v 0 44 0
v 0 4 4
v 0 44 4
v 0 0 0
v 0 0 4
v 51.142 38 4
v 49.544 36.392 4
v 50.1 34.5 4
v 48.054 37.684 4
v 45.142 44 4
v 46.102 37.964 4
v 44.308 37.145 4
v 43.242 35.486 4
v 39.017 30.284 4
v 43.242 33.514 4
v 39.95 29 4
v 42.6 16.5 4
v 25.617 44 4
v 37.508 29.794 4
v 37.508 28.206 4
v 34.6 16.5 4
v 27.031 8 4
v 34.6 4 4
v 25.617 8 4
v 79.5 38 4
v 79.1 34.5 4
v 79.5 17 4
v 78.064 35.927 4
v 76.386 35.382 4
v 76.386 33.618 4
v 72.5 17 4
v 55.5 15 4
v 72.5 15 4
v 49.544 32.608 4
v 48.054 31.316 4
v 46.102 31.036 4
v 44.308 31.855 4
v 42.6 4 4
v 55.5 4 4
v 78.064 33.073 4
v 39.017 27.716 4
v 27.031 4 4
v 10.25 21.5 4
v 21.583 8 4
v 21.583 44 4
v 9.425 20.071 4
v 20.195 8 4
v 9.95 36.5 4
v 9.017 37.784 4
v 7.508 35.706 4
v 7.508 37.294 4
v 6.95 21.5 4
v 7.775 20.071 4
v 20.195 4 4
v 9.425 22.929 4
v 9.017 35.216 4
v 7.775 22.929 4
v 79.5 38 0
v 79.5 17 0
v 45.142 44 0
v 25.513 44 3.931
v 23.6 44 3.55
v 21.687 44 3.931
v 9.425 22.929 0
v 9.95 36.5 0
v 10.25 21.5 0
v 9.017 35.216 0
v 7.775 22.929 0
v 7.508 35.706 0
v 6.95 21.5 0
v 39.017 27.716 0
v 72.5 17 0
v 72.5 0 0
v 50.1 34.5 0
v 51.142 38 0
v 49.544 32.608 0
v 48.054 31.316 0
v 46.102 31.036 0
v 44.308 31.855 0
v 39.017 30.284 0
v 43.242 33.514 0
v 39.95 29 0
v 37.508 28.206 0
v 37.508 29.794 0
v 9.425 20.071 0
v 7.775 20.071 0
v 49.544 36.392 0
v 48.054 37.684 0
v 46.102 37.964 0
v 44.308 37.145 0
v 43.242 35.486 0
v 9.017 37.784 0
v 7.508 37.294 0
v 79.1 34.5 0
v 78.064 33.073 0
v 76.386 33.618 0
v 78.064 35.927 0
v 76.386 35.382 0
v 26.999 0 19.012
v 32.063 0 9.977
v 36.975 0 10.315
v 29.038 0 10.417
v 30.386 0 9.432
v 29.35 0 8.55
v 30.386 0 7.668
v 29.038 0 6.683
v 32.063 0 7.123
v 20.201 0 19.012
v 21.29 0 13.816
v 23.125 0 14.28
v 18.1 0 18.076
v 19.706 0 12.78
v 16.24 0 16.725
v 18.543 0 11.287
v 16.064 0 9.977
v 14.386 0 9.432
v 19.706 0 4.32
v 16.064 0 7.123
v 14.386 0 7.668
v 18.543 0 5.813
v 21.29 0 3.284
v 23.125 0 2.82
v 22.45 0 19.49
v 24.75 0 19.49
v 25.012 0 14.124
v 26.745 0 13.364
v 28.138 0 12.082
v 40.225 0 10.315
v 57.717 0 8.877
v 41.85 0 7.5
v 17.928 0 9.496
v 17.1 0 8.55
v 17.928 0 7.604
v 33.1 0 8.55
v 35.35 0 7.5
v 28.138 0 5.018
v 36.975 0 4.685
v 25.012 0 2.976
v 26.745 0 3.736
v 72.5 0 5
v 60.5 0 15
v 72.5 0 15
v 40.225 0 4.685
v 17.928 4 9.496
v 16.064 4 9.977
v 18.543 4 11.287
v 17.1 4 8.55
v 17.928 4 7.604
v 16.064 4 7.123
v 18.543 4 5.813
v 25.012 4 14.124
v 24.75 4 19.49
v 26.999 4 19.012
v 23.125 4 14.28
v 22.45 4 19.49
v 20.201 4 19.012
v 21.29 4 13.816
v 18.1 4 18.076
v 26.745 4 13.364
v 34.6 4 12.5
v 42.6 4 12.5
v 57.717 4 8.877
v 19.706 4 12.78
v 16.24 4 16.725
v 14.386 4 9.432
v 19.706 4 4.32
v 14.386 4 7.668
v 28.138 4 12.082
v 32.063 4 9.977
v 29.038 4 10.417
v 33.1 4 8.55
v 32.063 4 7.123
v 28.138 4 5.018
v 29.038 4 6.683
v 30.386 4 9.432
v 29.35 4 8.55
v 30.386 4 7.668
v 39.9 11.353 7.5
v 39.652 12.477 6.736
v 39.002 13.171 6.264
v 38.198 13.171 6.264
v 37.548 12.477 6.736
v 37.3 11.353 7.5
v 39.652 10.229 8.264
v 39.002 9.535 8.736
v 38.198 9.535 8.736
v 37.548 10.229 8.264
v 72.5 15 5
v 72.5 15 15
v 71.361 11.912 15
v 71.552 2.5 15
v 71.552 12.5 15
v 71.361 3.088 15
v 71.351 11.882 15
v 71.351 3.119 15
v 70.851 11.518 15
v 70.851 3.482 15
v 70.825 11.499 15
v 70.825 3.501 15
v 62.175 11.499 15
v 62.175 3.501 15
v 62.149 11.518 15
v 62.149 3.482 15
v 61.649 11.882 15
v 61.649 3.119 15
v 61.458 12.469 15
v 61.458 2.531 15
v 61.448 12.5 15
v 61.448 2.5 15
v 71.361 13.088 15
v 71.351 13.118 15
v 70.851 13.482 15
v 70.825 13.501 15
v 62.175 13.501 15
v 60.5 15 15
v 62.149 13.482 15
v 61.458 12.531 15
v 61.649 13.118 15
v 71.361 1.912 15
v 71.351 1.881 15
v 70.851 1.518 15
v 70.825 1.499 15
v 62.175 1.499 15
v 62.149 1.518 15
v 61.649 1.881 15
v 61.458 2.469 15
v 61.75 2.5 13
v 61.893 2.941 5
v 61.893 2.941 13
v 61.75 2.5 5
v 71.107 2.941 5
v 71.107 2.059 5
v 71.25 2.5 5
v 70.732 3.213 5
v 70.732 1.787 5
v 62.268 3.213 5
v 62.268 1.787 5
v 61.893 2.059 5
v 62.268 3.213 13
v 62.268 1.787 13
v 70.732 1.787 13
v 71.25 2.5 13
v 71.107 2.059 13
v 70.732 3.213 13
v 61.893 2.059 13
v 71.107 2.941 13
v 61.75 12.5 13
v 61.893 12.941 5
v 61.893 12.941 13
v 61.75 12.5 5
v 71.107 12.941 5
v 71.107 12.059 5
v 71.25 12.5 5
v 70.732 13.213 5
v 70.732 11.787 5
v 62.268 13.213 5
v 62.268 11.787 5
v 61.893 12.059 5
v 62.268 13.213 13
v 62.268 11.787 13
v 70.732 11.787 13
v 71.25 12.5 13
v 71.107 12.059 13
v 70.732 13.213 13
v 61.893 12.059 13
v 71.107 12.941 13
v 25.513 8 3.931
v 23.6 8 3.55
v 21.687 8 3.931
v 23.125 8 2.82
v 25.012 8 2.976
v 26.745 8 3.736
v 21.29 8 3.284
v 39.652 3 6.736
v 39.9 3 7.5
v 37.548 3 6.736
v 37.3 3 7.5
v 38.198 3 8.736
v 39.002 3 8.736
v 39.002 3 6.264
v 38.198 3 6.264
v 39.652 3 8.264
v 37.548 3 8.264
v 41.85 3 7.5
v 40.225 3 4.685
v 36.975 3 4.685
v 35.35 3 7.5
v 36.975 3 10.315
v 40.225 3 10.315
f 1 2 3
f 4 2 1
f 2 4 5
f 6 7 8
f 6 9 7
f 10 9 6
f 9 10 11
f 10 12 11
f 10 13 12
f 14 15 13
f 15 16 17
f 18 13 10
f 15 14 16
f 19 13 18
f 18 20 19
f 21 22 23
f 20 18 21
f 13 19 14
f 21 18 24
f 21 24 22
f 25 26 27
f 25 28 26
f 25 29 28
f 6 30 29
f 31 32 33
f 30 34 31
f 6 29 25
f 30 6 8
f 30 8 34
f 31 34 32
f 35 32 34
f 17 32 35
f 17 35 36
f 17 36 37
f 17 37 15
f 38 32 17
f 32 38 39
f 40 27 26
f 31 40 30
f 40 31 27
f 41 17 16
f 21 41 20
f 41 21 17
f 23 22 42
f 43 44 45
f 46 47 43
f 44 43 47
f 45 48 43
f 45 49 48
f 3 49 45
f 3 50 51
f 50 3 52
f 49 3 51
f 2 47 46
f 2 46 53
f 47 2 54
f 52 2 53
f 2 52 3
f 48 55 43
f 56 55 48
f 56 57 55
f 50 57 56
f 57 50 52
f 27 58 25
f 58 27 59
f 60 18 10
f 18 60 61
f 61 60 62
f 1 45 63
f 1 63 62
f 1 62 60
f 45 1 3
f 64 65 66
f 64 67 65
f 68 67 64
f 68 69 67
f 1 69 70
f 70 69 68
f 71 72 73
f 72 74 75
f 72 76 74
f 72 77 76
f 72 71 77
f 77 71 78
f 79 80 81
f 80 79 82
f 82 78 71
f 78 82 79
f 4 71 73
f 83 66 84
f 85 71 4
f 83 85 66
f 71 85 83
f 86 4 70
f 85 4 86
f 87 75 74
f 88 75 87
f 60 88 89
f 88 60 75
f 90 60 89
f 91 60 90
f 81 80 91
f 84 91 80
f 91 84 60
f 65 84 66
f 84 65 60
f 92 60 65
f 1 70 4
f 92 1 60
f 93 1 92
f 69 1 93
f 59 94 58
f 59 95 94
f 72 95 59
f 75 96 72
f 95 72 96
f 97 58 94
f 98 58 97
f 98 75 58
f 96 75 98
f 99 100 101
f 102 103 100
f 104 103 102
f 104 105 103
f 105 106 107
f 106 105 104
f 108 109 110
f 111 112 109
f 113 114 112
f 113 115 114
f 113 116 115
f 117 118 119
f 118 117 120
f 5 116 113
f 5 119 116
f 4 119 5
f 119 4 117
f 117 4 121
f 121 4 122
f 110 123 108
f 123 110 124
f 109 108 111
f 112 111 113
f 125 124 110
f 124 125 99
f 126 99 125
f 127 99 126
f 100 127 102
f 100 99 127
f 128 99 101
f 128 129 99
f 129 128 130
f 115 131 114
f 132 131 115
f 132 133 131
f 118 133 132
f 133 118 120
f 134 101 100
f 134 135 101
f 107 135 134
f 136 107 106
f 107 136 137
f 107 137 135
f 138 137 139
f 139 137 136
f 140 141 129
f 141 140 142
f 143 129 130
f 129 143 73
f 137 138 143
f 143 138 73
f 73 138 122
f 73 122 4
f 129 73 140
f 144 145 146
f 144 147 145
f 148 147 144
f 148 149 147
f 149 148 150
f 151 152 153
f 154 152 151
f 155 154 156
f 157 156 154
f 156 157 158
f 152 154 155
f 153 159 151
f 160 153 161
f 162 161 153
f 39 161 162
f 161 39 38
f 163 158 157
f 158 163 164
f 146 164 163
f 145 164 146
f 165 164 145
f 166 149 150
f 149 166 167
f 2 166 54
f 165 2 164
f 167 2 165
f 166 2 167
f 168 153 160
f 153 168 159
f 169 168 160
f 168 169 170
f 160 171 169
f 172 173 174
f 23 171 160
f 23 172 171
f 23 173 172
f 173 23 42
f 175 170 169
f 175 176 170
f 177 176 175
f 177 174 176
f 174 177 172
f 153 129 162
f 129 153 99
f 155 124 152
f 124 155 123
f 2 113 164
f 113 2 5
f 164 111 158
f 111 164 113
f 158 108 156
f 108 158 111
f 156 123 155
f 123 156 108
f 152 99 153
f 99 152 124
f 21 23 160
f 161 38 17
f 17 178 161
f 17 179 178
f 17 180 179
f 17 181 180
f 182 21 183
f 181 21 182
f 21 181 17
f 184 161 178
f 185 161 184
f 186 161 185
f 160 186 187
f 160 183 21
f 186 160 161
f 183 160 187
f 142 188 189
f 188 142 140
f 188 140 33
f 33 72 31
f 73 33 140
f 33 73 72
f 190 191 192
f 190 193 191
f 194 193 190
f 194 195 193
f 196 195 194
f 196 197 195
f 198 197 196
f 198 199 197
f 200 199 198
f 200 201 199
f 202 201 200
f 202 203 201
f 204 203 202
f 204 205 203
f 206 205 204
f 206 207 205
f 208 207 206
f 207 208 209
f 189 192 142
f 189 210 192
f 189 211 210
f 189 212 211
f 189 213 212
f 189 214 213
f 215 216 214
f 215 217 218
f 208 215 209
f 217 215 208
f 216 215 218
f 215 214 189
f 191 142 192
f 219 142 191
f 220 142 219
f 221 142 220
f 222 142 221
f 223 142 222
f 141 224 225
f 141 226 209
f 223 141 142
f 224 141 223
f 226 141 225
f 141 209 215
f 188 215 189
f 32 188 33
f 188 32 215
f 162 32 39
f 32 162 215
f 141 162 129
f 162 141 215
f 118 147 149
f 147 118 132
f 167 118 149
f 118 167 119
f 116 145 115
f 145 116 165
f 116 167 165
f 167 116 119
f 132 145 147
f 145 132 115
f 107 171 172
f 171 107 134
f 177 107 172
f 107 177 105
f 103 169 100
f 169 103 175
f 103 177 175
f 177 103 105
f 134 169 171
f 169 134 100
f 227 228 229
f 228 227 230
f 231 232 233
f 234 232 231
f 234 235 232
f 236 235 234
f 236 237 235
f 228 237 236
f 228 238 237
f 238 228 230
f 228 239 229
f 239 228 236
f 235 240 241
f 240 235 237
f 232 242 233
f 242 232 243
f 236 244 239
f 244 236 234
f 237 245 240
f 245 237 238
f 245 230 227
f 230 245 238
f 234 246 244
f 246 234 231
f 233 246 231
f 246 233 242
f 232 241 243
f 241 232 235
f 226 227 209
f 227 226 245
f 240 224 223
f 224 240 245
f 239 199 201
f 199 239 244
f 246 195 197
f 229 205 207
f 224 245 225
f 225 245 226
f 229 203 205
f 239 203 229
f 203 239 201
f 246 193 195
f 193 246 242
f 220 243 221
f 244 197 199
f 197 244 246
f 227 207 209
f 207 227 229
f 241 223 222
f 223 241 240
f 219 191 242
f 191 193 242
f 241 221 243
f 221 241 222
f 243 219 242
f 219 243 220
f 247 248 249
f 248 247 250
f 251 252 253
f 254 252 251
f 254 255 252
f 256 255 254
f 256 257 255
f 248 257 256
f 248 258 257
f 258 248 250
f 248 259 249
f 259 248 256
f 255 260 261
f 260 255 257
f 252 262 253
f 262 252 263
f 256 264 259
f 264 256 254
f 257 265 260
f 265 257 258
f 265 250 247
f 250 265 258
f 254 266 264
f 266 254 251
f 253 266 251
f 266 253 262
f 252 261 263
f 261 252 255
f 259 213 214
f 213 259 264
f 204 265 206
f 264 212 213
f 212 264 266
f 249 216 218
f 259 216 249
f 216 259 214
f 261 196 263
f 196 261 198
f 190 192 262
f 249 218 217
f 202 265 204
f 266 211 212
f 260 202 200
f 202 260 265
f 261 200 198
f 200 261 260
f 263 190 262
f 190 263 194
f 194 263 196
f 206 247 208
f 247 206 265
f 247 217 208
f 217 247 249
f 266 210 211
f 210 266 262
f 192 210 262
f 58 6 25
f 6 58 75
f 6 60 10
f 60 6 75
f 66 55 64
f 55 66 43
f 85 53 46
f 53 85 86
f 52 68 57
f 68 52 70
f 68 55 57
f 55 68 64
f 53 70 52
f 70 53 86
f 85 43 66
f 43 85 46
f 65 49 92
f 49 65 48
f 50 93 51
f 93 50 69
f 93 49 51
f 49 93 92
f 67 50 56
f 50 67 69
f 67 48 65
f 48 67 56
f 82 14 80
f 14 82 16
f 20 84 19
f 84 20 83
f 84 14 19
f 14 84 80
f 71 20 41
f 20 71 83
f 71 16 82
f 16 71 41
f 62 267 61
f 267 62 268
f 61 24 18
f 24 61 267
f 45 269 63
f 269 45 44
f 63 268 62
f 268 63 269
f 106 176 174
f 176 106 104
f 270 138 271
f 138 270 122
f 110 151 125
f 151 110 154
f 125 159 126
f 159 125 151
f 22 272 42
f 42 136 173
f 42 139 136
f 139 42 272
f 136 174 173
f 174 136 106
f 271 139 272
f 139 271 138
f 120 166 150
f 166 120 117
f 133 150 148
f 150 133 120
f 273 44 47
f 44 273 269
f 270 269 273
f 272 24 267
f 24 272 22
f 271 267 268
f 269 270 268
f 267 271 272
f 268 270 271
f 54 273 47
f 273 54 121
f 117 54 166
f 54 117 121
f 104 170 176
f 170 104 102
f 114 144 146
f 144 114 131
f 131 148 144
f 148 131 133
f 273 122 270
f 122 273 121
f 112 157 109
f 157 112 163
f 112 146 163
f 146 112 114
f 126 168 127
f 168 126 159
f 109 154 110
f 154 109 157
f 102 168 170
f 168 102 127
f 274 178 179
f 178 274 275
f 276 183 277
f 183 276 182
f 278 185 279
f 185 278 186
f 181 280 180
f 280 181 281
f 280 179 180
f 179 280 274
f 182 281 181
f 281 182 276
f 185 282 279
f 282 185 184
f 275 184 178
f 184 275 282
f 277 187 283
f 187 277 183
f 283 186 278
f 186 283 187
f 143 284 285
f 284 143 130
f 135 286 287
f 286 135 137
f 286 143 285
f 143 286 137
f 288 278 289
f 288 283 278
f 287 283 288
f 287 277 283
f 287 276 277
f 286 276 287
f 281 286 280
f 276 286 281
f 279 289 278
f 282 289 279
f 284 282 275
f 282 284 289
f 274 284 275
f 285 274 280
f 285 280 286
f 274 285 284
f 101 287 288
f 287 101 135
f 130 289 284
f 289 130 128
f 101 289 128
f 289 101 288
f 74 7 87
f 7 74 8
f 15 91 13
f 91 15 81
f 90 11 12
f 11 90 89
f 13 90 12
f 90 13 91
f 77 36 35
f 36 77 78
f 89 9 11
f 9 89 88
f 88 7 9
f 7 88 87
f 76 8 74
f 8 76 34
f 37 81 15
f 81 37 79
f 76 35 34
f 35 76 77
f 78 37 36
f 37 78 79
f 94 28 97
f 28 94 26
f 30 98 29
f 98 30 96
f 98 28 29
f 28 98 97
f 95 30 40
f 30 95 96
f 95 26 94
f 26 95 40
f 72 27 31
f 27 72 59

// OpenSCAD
/**
 * XEndV2.scad
 * 
 * Created by Diego Viejo
 * 23/oct/2019
 * 
 * This part connects X-plate with Z nut. It also serve as X-endstop holder and Z-endstop adjustment screw
 */

    
Width = 79.5;
Length = 44;
Height = 4;

XRail = 7;
endstopSeparation = 10;

threadHoles = 30; //distance between holes in the nut
threadHolesV = 15; //distance between holes in the nut (Vertical)
ThreadPos = 8.55;

//rotate([-90, 0, 0])
XEndV();

*translate([0, -15, 0])
mirror([0, 1, 0])
rotate([-90, 0, 0])
XEndV();


module XEndVBody()
union()
{
    cube([Width, Length, Height]);
    
    hull()
    {
        difference()
        {
            translate([8.6+threadHoles/2, 0, ThreadPos]) rotate([-90, 0, 0]) cylinder(d=22, h=Height);
            translate([0, -1, -Height]) cube([Width, Height+2, Height]);
        }
        cube([Width-XRail, Height, Height]);
    }
    
    //zendstop adjustment socket
    hull()
    {
        translate([8.6+threadHoles-4, 0, 0]) cube([8, Height, 12.5]);
        translate([8.6+threadHoles-4, 12.5, 0]) cube([8, Height, Height]);
    }
    
    //xend platform
    hull()
    {
        translate([Width-XRail-12, 0, 0]) cube([12, 15, 15]);
        translate([Width-XRail-17, 0, 0]) cube([15, 15, 4]);
    }

}

module XEndVHoles()
{
        
    //Z lead screw nut holes
    #translate([8.6, 21.5, -1])
        cylinder(d=3.3, h=Height+2);
    #translate([8.6, 21.5+threadHolesV, -1])
        cylinder(d=2.7, h=Height+2);
    #translate([8.6+threadHoles, 21.5+threadHolesV/2, -1]) 
        cylinder(d=2.7, h=Height+2);
        
    //thread rod
    #translate([8.6+threadHoles/2, -1, ThreadPos]) rotate([-90, 0, 0]) cylinder(d=10, h=Length+2);
    translate([8.6+threadHoles/2, -1, ThreadPos]) rotate([-90, 0, 0]) cylinder(d=11.5, h=Height+5);
    for(i=[-8, 8])
        translate([8.6+threadHoles/2+i, -1, ThreadPos]) rotate([-90, 0, 0]) 
            cylinder(d=3, h=Height+2);
    
    //zendstop adjustment socket
    #translate([8.6+threadHoles, -1, Height + 7/2])  rotate([-90, 0, 0]) cylinder(d=2.6, h=20, $fn=10);
    translate([8.6+threadHoles, -1, Height + 7/2])  rotate([-90, 0, 0]) cylinder(d=6.5, h=4, $fn=6);

    //x endstop
    for(i = [-1, 1])
    {        
        hull()
        {
            translate([Width-XRail-10, (15+i*endstopSeparation)/2, 5]) cylinder(d=1.5, h=10, $fn=10);
            translate([Width-XRail-2, (15+i*endstopSeparation)/2, 5]) cylinder(d=1.5, h=10, $fn=10);
        }
        hull()
        {
            translate([Width-XRail-10, (15+i*endstopSeparation)/2, 13]) cylinder(d1=1.5, d2=2.15, h=2.15, $fn=10);
            translate([Width-XRail-2, (15+i*endstopSeparation)/2, 13]) cylinder(d1=1.5, d2=2.15, h=2.15, $fn=10);
        }
    }

            
    //X-Motor holes
    translate([46.6, 34.5, -1]) cylinder(d=7, h=Height+2);
    #translate([77.6, 34.5, -1]) cylinder(d=3, h=Height+2);
            
    //X rail and fancy cuts
    translate([Width-XRail, -1, -1]) cube([7+1, 15+2+1, Height+2]);
    
    difference()
    {
        translate([45, 38, -1]) cube([35, 8, Height+2]);
        translate([45, 30, -1]) rotate(45) cube([10, 10, Height+2]);
    }
    *translate([Width+1, 31.5, -1]) rotate(45) cube([10, 10, Height+2]);
}

module XEndV()
difference()
{
    XEndVBody();
    XEndVHoles();
}
